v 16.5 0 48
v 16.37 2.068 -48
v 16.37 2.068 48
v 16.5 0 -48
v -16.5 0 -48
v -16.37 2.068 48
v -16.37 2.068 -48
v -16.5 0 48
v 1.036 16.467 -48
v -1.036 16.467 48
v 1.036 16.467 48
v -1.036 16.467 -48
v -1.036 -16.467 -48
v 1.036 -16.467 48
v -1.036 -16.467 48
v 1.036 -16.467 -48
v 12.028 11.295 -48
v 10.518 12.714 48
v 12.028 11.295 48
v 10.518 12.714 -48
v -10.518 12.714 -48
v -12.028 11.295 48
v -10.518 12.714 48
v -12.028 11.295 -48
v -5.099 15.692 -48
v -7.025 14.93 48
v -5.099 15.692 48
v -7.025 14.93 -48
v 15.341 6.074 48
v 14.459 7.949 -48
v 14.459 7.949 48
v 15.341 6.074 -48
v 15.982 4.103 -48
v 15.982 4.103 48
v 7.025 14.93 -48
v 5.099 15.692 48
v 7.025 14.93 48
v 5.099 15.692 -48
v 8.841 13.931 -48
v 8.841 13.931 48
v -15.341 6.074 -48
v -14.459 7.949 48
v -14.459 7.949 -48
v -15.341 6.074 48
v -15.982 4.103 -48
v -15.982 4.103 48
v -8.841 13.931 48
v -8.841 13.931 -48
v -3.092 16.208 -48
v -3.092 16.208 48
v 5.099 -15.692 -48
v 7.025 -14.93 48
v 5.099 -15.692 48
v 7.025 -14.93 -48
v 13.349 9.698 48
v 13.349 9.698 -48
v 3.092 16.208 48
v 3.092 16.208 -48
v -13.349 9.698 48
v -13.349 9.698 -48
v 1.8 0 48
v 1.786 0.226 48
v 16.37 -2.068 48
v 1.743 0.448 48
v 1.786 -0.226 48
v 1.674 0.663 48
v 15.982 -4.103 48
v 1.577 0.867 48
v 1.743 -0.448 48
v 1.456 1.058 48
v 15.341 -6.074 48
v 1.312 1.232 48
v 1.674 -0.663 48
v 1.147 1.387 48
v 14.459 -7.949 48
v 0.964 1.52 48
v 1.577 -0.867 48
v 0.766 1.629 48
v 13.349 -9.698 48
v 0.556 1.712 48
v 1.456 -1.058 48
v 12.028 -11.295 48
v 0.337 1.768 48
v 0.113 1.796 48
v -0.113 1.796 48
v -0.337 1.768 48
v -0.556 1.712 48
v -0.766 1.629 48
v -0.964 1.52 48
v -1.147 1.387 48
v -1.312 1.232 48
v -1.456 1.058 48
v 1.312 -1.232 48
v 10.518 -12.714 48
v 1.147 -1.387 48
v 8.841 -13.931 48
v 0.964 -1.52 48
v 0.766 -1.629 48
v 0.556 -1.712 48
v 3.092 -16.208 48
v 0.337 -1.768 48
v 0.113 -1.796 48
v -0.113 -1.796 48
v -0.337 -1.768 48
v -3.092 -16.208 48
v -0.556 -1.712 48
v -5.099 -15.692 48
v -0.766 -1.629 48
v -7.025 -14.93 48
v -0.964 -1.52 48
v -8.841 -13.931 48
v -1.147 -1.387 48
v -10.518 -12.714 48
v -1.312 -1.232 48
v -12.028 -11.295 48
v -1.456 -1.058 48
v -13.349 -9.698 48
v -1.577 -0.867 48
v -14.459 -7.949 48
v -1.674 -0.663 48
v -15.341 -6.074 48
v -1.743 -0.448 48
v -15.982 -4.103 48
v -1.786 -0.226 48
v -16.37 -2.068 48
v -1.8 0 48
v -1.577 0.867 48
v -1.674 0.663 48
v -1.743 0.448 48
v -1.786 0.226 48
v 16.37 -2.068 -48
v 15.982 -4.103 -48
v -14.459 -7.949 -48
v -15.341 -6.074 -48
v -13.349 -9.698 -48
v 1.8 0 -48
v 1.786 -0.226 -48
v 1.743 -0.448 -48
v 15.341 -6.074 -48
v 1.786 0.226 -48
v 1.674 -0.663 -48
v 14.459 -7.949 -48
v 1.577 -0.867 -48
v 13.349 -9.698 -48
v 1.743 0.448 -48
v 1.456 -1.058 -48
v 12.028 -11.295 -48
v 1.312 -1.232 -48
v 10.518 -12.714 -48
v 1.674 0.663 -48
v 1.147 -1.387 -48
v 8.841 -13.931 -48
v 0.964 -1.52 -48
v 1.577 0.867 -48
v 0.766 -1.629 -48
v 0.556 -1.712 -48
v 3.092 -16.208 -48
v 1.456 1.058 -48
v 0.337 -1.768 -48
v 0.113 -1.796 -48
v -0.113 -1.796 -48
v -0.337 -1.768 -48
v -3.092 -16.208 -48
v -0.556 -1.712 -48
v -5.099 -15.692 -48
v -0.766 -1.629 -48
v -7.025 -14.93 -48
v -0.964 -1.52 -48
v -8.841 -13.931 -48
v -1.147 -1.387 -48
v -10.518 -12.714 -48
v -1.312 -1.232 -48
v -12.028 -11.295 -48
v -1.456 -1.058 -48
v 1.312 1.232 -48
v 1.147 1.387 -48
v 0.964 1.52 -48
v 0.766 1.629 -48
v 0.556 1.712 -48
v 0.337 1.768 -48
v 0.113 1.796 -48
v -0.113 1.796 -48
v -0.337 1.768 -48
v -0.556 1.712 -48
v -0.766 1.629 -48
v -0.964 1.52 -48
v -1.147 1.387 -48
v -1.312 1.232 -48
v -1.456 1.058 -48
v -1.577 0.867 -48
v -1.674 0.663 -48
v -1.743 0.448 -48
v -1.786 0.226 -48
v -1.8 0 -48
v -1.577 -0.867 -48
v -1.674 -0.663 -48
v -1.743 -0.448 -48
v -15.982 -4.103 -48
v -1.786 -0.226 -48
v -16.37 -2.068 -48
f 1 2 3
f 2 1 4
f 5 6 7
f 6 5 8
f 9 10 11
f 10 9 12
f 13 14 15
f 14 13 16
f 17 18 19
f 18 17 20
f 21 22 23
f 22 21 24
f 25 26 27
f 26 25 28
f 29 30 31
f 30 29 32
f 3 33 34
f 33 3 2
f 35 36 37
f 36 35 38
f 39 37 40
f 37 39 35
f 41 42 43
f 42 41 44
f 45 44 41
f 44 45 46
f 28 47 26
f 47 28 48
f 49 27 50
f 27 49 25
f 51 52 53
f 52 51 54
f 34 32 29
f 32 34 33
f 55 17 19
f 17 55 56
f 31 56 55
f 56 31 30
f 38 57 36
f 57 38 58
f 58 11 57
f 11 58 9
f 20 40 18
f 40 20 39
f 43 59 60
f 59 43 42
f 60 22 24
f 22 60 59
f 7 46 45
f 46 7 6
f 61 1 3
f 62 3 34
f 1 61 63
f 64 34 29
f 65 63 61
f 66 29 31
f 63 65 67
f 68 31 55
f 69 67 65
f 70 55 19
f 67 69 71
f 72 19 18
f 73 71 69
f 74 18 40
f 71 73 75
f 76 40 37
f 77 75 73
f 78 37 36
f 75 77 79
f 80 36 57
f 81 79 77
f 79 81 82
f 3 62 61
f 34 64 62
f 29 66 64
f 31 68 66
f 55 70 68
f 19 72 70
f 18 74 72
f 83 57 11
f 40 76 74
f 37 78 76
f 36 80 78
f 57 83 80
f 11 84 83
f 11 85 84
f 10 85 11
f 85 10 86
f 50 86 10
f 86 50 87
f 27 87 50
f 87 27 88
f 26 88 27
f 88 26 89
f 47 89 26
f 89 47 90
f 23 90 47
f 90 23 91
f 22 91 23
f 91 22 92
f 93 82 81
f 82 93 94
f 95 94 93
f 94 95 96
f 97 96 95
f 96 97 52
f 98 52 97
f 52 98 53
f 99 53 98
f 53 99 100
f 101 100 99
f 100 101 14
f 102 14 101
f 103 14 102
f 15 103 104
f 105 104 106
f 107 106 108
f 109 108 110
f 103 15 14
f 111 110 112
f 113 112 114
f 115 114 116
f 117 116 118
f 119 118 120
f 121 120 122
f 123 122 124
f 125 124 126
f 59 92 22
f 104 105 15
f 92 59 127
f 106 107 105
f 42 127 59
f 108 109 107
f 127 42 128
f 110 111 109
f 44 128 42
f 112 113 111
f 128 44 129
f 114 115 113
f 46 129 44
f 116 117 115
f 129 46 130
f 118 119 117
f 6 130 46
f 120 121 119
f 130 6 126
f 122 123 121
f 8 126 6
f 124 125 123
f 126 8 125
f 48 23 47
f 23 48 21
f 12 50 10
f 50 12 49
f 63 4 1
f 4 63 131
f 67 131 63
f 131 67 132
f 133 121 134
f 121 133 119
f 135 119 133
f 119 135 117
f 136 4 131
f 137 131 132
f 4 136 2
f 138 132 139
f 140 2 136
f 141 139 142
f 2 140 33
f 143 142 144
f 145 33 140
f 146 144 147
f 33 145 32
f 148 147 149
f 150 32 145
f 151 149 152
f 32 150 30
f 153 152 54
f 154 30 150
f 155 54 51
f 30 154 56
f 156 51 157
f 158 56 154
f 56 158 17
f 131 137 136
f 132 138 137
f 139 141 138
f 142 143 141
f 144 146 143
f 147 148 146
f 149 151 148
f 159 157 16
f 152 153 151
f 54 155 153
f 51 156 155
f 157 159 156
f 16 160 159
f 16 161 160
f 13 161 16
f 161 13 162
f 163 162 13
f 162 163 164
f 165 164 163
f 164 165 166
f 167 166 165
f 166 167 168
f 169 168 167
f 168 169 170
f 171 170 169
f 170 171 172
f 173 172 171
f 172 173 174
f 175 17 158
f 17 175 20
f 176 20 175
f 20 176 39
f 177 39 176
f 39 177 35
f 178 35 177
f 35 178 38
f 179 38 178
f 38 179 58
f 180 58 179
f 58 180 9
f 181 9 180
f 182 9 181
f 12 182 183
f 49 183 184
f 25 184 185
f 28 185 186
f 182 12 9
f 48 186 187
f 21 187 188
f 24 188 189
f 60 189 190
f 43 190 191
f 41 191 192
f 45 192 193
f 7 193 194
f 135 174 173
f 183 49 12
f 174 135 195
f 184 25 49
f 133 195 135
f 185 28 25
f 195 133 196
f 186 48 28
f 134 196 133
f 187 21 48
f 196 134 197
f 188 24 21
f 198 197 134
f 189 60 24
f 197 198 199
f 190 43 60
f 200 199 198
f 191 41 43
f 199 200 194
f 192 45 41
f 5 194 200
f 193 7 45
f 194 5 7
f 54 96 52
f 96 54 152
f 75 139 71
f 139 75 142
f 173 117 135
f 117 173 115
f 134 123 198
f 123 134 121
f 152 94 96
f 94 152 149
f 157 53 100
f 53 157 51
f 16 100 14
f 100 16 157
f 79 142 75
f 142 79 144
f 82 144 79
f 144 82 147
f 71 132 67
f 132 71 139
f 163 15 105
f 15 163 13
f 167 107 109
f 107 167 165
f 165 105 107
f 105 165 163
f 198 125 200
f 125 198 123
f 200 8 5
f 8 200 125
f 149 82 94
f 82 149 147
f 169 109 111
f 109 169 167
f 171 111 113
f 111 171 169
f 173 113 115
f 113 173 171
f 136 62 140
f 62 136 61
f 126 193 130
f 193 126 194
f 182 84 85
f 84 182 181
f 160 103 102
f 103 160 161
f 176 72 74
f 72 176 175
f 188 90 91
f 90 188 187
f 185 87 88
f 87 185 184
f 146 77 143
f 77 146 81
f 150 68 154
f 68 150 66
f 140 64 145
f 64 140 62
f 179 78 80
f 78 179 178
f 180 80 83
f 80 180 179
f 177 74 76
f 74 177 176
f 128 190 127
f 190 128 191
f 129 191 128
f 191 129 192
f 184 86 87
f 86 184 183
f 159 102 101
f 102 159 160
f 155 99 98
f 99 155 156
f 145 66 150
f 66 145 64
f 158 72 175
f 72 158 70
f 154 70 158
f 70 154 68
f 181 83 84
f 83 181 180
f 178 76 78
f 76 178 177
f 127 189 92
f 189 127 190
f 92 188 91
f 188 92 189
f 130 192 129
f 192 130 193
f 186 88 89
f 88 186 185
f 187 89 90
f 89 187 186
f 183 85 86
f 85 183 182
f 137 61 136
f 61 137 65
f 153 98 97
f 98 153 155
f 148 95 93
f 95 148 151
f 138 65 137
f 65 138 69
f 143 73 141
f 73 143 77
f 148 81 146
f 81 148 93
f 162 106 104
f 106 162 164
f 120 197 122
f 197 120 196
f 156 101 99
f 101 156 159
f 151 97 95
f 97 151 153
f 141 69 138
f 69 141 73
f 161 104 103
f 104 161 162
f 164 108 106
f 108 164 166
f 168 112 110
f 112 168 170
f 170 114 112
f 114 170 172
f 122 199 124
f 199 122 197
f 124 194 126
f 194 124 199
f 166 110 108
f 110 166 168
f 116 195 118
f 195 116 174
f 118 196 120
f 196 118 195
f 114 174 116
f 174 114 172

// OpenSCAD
$fn = 50;


difference() {
	union() {
		translate(v = [0, 0, -48.0000000000]) {
			cylinder(h = 96, r = 16.5000000000);
		}
	}
	union() {
		translate(v = [0, 0, -100.0000000000]) {
			cylinder(h = 200, r = 1.8000000000);
		}
	}
}
